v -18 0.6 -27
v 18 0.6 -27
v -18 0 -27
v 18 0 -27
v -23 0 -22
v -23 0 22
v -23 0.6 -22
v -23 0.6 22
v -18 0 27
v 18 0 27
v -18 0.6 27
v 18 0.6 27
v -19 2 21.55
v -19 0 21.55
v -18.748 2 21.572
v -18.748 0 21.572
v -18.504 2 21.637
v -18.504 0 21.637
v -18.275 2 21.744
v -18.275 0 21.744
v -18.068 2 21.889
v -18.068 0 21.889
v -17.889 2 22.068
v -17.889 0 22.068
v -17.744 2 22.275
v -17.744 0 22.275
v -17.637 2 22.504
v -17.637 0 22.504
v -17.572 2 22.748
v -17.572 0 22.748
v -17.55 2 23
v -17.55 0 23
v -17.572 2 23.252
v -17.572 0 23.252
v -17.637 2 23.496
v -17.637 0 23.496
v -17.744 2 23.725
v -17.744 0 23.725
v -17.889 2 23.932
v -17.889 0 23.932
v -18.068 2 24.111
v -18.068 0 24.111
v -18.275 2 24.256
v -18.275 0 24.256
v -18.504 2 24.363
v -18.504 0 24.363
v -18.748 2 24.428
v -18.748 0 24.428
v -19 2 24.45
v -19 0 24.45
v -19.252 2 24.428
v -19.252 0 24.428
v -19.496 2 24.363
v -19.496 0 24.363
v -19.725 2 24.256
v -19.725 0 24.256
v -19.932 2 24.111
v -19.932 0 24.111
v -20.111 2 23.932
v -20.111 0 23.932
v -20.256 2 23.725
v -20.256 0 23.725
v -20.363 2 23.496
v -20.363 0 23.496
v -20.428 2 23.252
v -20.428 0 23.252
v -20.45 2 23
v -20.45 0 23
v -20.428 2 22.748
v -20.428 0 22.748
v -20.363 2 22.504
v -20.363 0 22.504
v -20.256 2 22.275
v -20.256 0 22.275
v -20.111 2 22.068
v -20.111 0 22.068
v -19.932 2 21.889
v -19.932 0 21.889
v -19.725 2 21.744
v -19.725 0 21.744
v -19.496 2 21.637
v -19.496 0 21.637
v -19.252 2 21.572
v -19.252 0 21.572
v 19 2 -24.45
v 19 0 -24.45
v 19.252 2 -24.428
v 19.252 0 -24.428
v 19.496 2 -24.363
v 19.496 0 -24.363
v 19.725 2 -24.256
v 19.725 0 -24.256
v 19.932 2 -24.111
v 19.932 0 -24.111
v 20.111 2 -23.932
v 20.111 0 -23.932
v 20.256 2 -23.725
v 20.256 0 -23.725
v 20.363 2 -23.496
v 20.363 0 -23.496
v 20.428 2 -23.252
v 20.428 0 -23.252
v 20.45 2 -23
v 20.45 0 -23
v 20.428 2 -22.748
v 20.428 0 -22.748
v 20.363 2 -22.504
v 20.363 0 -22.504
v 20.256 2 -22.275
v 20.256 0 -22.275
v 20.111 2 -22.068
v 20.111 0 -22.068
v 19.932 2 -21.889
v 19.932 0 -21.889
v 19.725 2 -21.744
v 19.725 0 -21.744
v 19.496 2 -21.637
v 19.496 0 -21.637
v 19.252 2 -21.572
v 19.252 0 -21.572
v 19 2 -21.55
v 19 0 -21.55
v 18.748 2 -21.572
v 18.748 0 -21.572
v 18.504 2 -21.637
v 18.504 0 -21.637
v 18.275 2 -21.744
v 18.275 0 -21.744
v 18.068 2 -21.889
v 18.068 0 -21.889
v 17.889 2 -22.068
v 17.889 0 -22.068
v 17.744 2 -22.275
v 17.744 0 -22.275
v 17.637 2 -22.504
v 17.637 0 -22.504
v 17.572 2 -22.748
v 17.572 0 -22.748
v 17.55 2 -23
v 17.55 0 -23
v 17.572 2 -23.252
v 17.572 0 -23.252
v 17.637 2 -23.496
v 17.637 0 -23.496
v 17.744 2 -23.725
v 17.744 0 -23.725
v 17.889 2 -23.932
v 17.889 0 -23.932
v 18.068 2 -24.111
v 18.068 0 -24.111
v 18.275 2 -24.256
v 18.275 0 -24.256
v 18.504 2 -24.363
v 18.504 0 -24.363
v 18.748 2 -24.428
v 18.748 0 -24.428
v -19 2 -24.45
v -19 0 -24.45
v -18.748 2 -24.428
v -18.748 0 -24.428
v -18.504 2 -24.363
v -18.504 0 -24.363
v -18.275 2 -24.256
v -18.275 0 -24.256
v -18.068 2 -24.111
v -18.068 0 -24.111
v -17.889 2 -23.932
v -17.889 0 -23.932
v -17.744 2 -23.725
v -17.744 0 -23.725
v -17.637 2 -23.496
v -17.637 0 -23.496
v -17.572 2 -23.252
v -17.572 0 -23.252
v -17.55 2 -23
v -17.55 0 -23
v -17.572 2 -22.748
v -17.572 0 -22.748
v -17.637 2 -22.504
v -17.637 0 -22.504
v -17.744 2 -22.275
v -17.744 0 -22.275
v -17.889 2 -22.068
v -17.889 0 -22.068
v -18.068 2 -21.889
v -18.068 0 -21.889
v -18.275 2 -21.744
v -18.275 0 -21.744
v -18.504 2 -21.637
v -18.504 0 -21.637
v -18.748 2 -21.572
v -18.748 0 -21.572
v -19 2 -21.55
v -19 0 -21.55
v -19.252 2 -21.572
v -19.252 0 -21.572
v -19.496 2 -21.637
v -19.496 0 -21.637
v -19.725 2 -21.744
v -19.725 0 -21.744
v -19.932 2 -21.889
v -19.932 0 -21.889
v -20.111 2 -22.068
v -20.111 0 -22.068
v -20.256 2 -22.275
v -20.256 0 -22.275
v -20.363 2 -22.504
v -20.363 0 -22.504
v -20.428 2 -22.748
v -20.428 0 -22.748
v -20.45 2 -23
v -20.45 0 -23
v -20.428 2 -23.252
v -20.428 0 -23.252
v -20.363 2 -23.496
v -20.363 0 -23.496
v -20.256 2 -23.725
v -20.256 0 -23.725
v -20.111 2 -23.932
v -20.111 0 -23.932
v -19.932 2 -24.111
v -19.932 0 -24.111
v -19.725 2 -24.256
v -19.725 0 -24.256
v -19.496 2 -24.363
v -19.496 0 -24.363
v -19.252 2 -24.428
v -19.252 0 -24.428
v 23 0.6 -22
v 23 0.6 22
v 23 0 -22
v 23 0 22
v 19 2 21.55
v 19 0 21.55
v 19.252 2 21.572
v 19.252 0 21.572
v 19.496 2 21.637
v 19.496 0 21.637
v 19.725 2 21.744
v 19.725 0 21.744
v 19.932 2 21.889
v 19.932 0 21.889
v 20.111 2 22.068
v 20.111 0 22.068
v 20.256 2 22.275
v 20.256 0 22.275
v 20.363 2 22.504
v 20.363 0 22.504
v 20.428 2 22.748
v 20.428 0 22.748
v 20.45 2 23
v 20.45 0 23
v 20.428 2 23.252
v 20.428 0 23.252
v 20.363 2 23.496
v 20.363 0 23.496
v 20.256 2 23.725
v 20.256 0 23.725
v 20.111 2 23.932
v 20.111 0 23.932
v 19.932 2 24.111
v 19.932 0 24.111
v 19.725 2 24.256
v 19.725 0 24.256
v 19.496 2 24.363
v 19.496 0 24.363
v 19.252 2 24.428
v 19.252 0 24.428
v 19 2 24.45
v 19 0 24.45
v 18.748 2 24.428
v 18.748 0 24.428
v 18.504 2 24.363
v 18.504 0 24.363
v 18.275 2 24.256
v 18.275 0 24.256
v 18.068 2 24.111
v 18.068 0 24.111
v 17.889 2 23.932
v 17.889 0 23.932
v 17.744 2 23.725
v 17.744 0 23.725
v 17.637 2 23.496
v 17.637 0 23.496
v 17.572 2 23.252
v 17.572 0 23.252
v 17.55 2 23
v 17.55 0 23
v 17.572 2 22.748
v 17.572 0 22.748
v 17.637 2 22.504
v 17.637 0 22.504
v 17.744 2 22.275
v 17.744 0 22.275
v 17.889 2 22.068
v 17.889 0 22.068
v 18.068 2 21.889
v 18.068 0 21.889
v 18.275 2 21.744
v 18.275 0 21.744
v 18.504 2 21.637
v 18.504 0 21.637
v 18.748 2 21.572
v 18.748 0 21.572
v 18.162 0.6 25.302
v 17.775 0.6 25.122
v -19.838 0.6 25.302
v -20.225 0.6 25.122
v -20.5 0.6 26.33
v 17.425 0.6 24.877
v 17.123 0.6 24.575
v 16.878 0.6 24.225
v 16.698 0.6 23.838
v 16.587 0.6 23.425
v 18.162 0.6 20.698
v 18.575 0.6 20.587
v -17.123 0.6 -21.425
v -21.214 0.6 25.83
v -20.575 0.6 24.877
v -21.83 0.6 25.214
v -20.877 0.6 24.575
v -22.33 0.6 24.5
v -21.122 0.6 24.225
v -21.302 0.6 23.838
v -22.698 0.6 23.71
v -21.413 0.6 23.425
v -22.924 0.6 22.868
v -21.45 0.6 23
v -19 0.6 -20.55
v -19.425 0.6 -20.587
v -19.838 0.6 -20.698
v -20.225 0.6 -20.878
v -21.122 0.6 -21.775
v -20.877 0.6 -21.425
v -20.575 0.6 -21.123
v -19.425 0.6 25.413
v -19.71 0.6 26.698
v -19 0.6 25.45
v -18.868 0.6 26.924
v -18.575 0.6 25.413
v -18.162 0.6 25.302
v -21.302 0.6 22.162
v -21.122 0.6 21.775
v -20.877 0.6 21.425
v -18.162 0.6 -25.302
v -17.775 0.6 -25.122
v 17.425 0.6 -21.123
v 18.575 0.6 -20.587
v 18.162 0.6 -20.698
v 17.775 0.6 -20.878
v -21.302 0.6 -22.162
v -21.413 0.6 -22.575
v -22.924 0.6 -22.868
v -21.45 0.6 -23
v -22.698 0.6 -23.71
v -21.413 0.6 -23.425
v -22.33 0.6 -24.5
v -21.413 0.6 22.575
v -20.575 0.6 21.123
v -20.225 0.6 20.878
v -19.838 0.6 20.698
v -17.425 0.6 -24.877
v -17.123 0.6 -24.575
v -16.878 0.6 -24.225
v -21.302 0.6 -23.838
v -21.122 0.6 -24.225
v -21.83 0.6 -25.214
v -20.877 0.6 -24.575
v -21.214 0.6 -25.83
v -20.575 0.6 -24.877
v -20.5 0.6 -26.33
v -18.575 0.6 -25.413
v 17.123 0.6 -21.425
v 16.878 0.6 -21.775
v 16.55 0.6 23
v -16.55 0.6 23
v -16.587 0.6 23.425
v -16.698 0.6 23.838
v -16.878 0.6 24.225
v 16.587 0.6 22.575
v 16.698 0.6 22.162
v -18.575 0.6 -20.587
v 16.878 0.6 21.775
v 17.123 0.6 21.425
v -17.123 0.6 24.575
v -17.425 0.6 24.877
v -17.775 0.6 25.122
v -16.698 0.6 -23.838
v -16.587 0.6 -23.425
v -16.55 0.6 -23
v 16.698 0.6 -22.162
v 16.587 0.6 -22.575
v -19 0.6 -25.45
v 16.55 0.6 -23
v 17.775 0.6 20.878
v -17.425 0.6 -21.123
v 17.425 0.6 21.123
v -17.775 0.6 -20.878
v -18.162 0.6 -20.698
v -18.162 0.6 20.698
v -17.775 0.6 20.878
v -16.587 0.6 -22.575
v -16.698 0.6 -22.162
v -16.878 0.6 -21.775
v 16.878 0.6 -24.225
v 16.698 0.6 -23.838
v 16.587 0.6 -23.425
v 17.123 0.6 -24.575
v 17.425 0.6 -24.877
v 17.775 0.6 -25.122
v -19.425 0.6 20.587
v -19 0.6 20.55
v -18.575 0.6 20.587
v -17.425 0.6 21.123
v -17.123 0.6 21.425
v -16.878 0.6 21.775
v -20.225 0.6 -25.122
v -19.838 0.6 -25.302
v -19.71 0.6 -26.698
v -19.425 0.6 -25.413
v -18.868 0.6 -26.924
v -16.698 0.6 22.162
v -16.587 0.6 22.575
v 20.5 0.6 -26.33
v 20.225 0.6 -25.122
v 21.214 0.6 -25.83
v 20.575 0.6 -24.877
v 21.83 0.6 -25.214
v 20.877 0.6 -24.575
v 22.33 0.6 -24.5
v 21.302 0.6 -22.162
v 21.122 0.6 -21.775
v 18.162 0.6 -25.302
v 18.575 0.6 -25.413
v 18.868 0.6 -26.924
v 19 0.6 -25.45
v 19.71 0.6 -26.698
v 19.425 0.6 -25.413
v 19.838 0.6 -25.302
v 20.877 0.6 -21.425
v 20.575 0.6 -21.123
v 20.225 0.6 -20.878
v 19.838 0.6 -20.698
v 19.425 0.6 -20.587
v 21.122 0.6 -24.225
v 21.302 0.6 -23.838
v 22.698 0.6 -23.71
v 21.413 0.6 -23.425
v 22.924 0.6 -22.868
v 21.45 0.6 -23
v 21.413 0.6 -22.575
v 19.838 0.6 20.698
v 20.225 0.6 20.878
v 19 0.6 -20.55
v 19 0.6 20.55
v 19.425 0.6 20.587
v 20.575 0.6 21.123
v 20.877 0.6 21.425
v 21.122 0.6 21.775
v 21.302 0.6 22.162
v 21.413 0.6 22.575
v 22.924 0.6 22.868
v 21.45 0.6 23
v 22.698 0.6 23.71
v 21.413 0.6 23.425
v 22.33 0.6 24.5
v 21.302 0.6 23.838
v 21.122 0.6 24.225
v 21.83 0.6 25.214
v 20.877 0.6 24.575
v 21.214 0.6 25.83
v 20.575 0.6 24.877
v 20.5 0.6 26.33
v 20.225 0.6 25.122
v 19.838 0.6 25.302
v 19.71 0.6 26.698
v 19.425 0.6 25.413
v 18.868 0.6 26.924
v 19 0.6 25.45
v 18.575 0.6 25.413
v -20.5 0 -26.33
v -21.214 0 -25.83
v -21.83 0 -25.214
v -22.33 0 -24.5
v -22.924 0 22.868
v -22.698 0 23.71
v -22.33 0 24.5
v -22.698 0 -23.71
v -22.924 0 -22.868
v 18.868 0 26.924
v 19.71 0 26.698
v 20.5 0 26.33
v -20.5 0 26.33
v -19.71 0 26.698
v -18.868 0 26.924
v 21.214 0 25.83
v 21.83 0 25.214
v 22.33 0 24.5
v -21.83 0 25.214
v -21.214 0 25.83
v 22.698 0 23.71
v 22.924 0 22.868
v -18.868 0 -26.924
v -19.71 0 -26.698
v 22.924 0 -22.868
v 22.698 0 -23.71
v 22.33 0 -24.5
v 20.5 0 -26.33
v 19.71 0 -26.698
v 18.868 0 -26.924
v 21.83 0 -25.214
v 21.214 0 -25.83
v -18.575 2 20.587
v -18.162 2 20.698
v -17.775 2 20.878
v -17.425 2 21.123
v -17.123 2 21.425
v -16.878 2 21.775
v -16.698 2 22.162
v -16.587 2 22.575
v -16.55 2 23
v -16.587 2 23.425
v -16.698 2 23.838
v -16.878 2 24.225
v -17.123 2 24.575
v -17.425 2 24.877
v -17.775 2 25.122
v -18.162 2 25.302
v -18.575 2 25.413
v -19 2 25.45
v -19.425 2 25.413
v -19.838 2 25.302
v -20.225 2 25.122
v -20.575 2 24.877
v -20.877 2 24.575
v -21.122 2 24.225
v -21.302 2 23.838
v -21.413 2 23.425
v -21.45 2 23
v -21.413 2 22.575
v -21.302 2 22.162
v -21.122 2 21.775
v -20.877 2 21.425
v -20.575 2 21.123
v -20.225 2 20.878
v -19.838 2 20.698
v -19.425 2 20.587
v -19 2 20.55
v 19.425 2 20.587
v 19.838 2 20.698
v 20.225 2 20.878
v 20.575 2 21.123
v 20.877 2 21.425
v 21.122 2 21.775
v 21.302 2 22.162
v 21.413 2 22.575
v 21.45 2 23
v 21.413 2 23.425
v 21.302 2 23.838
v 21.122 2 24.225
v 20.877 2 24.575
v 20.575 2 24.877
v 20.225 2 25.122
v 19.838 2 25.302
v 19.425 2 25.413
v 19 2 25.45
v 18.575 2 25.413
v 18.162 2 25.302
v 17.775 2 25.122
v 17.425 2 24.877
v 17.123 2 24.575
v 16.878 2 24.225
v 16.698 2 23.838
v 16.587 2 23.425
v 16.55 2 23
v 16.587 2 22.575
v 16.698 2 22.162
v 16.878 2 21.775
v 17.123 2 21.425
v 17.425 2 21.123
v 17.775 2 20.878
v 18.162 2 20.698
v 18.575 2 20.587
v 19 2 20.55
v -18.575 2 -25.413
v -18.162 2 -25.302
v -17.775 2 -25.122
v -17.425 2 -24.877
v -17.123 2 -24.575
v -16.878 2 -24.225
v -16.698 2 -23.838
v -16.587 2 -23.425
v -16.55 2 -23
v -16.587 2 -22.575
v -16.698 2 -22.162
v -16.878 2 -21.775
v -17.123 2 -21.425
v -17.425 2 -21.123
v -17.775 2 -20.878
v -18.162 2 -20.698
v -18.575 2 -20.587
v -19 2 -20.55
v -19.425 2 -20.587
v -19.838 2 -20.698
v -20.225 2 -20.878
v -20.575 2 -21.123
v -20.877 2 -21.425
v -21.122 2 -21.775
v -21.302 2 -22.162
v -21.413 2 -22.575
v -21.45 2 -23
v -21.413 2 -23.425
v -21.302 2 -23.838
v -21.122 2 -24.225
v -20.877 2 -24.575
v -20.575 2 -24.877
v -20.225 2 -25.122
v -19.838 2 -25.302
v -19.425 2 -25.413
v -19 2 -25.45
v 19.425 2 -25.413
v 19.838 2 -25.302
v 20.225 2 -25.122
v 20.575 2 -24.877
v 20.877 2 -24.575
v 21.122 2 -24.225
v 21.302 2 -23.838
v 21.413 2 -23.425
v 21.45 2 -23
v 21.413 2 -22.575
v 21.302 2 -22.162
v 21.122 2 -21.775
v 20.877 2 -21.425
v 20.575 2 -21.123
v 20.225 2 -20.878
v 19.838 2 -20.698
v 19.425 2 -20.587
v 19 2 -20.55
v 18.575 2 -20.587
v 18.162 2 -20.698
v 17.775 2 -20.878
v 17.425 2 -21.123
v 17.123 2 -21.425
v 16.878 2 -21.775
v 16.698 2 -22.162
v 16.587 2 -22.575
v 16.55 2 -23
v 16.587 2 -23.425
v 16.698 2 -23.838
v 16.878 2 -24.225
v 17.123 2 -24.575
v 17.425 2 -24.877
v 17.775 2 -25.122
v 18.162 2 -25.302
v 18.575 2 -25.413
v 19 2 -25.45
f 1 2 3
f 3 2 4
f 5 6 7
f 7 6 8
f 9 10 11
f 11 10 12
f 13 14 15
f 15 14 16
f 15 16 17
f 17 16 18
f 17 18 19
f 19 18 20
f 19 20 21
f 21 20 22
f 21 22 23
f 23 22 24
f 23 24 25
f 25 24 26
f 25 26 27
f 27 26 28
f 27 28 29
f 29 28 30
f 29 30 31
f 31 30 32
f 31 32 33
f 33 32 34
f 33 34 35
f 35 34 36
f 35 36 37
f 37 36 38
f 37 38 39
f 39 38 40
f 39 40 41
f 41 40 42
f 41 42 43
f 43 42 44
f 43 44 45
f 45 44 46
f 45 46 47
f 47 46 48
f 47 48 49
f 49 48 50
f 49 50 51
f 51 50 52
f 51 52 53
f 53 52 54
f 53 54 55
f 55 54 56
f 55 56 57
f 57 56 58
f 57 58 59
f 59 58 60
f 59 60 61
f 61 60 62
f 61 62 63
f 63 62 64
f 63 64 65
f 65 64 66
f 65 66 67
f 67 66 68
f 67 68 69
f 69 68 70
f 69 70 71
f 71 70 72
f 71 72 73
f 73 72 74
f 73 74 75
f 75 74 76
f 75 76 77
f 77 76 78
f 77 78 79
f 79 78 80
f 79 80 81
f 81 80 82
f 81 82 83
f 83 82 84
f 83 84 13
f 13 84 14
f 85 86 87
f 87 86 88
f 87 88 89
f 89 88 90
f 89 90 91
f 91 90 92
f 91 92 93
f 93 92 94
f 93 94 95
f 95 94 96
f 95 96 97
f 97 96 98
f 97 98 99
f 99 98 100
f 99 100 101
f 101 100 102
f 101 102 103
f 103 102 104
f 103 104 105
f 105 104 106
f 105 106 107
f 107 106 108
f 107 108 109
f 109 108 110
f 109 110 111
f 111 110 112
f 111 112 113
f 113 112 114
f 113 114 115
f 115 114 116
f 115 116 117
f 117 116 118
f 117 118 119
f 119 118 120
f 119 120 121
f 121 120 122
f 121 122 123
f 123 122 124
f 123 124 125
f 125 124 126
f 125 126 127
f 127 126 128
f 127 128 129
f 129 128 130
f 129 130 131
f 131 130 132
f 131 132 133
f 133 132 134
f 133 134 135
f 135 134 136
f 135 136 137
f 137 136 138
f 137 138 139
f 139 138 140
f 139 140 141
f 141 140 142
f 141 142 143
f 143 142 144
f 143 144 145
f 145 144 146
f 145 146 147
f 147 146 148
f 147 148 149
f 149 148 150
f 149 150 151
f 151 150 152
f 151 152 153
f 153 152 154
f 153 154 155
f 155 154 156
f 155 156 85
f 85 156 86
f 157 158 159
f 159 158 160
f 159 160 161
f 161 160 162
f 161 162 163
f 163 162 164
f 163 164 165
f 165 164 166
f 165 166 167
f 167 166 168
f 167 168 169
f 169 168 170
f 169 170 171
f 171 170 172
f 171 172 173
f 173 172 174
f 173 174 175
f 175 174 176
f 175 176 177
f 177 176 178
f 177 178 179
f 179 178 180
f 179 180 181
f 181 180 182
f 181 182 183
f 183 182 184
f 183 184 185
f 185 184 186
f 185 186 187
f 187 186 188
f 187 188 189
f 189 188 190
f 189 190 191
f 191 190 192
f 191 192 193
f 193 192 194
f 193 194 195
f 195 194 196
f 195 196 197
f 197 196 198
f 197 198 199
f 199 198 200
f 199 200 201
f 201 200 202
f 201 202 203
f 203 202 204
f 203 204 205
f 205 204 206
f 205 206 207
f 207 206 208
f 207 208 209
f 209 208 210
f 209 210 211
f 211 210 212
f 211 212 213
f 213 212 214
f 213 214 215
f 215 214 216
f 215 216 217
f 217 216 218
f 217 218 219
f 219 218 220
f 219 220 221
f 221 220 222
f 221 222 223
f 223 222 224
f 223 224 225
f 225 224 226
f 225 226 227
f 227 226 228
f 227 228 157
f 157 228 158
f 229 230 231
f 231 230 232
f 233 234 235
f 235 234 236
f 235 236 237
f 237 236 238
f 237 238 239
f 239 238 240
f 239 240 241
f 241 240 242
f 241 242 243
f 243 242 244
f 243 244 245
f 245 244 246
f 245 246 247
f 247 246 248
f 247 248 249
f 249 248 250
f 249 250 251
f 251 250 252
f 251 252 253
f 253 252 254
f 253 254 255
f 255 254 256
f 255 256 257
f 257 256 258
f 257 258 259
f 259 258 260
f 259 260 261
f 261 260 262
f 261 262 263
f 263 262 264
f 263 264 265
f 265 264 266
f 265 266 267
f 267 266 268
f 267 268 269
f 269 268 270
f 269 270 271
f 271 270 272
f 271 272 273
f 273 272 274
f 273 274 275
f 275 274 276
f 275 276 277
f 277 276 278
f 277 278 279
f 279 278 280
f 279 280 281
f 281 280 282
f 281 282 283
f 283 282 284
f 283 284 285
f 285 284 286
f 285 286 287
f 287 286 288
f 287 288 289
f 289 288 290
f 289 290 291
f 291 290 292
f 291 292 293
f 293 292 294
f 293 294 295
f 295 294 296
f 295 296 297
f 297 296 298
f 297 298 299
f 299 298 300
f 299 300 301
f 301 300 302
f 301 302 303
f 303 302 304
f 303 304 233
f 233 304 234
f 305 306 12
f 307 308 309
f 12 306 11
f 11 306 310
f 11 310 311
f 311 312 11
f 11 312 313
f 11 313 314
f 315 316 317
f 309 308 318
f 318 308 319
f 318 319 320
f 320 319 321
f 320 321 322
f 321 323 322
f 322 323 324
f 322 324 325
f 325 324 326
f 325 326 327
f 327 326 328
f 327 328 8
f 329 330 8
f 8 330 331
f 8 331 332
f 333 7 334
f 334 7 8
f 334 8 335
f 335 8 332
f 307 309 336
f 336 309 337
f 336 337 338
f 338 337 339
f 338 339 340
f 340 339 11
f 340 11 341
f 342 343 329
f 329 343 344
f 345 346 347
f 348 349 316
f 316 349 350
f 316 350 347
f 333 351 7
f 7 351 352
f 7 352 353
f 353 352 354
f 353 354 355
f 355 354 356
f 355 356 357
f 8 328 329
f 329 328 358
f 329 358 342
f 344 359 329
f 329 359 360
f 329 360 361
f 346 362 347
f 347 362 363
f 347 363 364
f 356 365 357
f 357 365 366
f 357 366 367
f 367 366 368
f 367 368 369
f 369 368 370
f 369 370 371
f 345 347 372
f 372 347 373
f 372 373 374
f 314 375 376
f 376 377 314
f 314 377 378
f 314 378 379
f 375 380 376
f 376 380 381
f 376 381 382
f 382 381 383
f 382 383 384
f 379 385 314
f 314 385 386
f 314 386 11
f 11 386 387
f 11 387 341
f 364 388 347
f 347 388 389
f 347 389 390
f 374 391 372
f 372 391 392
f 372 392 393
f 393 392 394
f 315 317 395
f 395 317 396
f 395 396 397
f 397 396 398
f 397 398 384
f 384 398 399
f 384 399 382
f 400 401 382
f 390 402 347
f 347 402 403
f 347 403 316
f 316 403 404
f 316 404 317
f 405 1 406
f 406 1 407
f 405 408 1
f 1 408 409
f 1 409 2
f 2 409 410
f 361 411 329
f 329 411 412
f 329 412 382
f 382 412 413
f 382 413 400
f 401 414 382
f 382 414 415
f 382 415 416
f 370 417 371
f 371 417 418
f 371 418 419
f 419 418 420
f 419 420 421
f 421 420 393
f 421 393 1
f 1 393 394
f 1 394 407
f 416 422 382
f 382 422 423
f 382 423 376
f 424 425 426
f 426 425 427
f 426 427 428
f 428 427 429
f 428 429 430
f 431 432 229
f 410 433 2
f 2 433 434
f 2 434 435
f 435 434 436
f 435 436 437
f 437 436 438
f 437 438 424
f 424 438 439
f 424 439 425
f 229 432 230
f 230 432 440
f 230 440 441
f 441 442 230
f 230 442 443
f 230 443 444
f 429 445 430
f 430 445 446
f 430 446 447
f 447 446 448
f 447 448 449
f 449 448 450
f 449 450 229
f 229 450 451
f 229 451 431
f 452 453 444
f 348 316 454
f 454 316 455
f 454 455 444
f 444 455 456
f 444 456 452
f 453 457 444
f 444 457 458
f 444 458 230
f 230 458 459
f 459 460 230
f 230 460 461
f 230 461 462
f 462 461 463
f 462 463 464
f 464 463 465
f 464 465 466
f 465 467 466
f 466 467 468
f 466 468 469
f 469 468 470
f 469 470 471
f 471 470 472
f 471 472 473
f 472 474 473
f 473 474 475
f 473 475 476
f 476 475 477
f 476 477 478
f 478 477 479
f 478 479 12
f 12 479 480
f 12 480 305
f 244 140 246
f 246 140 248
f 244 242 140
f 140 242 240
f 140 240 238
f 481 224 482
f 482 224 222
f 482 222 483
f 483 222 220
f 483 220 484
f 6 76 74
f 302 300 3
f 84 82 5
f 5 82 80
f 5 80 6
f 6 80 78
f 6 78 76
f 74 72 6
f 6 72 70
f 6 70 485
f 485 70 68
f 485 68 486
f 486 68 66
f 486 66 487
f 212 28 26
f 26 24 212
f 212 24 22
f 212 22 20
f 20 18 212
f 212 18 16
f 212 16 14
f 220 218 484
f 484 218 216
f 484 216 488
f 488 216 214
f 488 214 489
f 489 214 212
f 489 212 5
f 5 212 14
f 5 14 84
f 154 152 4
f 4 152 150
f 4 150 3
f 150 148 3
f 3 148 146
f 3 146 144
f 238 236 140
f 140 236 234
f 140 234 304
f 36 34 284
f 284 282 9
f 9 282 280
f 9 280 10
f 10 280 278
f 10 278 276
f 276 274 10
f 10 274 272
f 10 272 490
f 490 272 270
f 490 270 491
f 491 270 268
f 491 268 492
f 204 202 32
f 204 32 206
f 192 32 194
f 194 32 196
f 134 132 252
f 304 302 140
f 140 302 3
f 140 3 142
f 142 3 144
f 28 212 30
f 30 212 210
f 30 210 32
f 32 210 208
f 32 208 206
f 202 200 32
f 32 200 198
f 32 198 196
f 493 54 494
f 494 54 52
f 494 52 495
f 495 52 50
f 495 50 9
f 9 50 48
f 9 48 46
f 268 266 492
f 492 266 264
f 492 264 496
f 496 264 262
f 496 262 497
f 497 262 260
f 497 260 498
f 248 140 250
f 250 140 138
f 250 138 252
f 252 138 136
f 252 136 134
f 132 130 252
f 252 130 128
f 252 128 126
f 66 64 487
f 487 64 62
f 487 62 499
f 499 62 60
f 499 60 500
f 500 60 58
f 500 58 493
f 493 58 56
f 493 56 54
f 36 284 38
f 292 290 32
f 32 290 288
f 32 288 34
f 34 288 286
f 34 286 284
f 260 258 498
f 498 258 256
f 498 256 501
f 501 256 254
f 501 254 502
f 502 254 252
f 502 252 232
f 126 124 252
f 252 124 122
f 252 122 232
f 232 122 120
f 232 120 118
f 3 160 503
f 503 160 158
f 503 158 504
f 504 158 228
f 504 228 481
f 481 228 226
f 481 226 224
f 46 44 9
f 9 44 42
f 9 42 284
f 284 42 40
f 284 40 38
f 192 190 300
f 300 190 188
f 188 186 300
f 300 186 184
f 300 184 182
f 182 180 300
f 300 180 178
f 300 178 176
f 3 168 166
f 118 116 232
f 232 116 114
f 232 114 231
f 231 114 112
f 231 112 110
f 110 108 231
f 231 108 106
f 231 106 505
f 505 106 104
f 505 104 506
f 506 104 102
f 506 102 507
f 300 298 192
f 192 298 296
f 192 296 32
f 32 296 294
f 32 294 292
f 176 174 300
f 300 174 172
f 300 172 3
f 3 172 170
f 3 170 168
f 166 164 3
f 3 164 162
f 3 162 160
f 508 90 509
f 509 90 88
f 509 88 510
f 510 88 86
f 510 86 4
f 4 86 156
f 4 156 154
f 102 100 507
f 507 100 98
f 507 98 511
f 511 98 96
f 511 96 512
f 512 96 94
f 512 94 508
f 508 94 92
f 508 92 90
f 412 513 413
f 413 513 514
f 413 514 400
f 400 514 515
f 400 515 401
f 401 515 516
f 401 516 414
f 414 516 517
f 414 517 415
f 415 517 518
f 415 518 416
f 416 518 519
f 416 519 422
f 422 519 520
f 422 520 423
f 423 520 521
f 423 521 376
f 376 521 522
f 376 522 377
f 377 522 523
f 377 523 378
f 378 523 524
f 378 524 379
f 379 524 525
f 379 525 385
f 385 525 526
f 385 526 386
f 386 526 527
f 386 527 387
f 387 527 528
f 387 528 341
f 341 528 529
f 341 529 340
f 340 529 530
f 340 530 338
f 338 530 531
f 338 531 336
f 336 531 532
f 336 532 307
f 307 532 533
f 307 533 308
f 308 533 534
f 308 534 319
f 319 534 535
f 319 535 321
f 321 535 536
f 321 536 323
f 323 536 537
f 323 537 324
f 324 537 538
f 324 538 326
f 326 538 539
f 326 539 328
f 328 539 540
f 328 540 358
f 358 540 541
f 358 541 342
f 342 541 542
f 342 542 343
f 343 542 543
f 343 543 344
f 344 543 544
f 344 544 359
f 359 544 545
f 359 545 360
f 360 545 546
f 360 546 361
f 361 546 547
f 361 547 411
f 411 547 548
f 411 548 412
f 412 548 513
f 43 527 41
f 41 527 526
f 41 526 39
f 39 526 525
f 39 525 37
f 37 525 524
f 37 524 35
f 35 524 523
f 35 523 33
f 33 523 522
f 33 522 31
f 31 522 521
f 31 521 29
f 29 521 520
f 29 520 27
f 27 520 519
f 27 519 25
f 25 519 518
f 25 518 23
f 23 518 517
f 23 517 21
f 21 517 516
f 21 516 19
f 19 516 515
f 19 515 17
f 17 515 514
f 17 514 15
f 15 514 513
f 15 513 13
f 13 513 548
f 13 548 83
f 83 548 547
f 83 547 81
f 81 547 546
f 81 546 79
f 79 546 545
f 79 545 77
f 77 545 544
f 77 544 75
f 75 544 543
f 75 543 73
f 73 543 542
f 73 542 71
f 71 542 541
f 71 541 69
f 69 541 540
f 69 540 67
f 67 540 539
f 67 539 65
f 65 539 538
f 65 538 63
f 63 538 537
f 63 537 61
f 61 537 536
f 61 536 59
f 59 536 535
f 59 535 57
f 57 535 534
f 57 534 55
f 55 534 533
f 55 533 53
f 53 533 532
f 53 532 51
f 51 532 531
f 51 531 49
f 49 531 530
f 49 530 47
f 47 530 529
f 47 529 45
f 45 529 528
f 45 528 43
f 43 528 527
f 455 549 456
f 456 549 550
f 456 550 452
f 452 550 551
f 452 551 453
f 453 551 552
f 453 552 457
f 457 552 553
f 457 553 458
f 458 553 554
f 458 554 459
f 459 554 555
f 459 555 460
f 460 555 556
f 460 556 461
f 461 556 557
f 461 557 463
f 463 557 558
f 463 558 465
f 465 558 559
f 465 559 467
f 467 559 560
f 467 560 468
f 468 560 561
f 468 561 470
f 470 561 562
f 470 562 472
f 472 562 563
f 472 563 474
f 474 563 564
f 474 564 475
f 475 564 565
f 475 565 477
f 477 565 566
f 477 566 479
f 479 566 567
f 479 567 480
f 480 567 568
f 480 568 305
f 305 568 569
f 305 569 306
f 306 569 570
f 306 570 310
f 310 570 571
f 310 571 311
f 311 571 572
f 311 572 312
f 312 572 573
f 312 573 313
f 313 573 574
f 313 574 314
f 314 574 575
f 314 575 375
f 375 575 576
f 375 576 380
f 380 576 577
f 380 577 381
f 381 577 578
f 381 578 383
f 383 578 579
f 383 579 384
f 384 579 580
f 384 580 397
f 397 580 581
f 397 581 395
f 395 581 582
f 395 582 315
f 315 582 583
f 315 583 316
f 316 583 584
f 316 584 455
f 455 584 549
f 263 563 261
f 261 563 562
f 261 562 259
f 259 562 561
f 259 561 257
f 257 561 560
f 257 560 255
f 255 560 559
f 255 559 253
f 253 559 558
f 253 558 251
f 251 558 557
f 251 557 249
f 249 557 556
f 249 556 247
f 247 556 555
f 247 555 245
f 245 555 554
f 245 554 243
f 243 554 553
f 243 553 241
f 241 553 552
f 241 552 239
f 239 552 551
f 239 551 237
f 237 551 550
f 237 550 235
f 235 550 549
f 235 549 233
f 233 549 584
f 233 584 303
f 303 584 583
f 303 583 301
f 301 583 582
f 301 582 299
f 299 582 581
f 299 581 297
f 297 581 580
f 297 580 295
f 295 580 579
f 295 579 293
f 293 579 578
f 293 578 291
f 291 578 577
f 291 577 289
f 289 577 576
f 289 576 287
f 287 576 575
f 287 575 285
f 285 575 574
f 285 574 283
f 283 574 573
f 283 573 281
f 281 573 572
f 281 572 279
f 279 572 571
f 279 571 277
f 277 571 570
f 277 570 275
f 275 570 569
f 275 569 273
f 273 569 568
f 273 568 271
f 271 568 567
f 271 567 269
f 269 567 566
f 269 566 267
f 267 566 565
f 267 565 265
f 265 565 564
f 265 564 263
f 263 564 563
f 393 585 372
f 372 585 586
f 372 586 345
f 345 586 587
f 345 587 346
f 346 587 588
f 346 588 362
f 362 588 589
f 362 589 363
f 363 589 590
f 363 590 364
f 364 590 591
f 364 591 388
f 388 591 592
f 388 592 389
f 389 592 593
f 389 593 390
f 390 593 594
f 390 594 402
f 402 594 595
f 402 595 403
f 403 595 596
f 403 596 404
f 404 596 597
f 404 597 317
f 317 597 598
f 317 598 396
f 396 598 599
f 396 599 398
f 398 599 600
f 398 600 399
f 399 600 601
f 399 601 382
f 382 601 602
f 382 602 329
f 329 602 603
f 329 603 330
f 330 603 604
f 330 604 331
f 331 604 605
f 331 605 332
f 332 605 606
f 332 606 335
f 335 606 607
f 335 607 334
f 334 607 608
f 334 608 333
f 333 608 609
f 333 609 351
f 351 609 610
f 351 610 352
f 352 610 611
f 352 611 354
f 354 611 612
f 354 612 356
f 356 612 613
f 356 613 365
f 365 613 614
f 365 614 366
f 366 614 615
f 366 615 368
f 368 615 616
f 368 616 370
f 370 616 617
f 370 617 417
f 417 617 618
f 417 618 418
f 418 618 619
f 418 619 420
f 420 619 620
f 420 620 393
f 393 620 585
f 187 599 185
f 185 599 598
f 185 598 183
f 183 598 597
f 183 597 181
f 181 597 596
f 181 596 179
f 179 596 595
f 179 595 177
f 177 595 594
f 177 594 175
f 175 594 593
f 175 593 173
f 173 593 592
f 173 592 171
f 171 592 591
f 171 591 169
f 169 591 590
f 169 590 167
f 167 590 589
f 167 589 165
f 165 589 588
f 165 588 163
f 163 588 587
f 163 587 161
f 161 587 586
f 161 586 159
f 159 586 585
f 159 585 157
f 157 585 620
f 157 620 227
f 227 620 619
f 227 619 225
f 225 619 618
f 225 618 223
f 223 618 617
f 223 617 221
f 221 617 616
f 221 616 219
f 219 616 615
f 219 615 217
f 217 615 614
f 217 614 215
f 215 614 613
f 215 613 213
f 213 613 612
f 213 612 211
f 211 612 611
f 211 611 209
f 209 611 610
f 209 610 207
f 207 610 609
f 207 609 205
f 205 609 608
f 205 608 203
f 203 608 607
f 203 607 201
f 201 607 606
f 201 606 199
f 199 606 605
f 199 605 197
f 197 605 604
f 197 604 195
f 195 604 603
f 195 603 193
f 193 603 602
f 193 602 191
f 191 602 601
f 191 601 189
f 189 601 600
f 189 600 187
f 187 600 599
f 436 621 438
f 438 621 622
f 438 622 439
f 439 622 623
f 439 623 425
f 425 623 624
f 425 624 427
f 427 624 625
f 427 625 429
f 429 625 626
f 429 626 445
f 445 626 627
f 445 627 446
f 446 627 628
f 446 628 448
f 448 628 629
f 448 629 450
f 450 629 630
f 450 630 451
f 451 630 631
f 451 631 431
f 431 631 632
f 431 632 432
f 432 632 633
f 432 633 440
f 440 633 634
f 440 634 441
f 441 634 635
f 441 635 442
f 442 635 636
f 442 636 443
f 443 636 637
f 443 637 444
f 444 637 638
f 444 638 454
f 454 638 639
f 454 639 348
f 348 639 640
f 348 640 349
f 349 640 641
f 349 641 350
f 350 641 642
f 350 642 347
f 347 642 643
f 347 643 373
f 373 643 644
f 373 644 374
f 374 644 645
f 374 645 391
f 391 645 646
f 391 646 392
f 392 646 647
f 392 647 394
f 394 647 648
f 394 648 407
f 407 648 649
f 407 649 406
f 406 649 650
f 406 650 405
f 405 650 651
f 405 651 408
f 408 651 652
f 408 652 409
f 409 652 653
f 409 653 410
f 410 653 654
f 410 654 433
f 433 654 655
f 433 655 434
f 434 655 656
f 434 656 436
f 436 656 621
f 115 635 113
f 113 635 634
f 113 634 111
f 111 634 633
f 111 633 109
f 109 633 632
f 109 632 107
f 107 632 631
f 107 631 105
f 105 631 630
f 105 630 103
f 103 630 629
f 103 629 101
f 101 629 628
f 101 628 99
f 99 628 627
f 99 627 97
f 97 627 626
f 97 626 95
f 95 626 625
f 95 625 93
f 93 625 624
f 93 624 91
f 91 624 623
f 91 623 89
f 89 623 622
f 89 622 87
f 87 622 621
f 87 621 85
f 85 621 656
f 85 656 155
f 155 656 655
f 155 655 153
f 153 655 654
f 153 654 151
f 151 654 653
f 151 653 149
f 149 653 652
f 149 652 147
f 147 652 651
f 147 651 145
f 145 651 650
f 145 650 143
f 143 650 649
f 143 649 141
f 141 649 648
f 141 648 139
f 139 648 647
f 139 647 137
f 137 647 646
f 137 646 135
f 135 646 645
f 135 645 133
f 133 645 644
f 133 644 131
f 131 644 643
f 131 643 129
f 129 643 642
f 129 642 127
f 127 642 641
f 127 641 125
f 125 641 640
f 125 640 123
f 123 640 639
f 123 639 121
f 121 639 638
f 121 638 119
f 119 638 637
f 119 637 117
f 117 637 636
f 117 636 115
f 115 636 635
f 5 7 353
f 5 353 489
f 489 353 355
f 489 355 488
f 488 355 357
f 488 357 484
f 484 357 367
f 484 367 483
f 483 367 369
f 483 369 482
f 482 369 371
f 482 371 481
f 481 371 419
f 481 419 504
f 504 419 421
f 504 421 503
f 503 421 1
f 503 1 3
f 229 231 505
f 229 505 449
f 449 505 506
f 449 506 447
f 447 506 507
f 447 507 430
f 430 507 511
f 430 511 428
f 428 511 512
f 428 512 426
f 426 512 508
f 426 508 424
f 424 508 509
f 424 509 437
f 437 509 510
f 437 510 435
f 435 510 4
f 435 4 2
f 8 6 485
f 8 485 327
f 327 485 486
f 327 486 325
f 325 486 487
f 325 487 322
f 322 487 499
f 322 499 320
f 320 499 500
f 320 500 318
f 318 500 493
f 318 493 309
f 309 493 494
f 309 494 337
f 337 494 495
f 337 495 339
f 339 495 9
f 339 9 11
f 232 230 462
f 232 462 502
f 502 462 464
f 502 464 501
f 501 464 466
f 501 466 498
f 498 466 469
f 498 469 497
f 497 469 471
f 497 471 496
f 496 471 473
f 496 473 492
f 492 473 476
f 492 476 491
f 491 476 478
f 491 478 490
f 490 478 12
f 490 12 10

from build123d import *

# Parameters (mm, degrees)
SKETCH1_W           = 46
SKETCH1_H           = 54
SKETCH1_R           = 1.45
BOSS_EXTRUDE1_DEPTH = 0.6
SKETCH1_3_R         = 2.45
SKETCH1_3_R_2       = 1.45
BOSS_EXTRUDE2_DEPTH = 2
FILLET1_R           = 5


with BuildPart() as part:
    # Sketch1 → Boss-Extrude1 (new body)
    with BuildSketch(Plane(origin=(0, 0, 0), x_dir=(1, 0, 0), z_dir=(0, 1, 0))):
        Rectangle(SKETCH1_W, SKETCH1_H)
        with Locations((-19, -23)):
            Circle(SKETCH1_R, mode=Mode.SUBTRACT)
        with Locations((19, -23)):
            Circle(SKETCH1_R, mode=Mode.SUBTRACT)
        with Locations((-19, 23)):
            Circle(SKETCH1_R, mode=Mode.SUBTRACT)
        with Locations((19, 23)):
            Circle(SKETCH1_R, mode=Mode.SUBTRACT)
    extrude(amount=BOSS_EXTRUDE1_DEPTH)

    # Sketch1<3> → Boss-Extrude2 (add)
    # profile 1 of 4: a face of its own
    with BuildSketch(Plane(origin=(0, 0, 0), x_dir=(1, 0, 0), z_dir=(0, 1, 0))):
        with Locations((-19, 23)):
            Circle(SKETCH1_3_R)
        with Locations((-19, 23)):
            Circle(SKETCH1_3_R_2, mode=Mode.SUBTRACT)
    # profile 2 of 4: a face of its own
    with BuildSketch(Plane(origin=(0, 0, 0), x_dir=(1, 0, 0), z_dir=(0, 1, 0))):
        with Locations((19, 23)):
            Circle(SKETCH1_3_R)
        with Locations((19, 23)):
            Circle(SKETCH1_3_R_2, mode=Mode.SUBTRACT)
    # profile 3 of 4: a face of its own
    with BuildSketch(Plane(origin=(0, 0, 0), x_dir=(1, 0, 0), z_dir=(0, 1, 0))):
        with Locations((-19, -23)):
            Circle(SKETCH1_3_R)
        with Locations((-19, -23)):
            Circle(SKETCH1_3_R_2, mode=Mode.SUBTRACT)
    # profile 4 of 4: a face of its own
    with BuildSketch(Plane(origin=(0, 0, 0), x_dir=(1, 0, 0), z_dir=(0, 1, 0))):
        with Locations((19, -23)):
            Circle(SKETCH1_3_R)
        with Locations((19, -23)):
            Circle(SKETCH1_3_R_2, mode=Mode.SUBTRACT)
    extrude(amount=BOSS_EXTRUDE2_DEPTH)

    # Fillet1
    fillet1_edges = [part.edges().sort_by_distance(p)[0] for p in [
        (-23, 0.3, -27),
        (23, 0.3, -27),
        (-23, 0.3, 27),
        (23, 0.3, 27),
    ]]
    fillet(fillet1_edges, radius=FILLET1_R)


solid = part.part
